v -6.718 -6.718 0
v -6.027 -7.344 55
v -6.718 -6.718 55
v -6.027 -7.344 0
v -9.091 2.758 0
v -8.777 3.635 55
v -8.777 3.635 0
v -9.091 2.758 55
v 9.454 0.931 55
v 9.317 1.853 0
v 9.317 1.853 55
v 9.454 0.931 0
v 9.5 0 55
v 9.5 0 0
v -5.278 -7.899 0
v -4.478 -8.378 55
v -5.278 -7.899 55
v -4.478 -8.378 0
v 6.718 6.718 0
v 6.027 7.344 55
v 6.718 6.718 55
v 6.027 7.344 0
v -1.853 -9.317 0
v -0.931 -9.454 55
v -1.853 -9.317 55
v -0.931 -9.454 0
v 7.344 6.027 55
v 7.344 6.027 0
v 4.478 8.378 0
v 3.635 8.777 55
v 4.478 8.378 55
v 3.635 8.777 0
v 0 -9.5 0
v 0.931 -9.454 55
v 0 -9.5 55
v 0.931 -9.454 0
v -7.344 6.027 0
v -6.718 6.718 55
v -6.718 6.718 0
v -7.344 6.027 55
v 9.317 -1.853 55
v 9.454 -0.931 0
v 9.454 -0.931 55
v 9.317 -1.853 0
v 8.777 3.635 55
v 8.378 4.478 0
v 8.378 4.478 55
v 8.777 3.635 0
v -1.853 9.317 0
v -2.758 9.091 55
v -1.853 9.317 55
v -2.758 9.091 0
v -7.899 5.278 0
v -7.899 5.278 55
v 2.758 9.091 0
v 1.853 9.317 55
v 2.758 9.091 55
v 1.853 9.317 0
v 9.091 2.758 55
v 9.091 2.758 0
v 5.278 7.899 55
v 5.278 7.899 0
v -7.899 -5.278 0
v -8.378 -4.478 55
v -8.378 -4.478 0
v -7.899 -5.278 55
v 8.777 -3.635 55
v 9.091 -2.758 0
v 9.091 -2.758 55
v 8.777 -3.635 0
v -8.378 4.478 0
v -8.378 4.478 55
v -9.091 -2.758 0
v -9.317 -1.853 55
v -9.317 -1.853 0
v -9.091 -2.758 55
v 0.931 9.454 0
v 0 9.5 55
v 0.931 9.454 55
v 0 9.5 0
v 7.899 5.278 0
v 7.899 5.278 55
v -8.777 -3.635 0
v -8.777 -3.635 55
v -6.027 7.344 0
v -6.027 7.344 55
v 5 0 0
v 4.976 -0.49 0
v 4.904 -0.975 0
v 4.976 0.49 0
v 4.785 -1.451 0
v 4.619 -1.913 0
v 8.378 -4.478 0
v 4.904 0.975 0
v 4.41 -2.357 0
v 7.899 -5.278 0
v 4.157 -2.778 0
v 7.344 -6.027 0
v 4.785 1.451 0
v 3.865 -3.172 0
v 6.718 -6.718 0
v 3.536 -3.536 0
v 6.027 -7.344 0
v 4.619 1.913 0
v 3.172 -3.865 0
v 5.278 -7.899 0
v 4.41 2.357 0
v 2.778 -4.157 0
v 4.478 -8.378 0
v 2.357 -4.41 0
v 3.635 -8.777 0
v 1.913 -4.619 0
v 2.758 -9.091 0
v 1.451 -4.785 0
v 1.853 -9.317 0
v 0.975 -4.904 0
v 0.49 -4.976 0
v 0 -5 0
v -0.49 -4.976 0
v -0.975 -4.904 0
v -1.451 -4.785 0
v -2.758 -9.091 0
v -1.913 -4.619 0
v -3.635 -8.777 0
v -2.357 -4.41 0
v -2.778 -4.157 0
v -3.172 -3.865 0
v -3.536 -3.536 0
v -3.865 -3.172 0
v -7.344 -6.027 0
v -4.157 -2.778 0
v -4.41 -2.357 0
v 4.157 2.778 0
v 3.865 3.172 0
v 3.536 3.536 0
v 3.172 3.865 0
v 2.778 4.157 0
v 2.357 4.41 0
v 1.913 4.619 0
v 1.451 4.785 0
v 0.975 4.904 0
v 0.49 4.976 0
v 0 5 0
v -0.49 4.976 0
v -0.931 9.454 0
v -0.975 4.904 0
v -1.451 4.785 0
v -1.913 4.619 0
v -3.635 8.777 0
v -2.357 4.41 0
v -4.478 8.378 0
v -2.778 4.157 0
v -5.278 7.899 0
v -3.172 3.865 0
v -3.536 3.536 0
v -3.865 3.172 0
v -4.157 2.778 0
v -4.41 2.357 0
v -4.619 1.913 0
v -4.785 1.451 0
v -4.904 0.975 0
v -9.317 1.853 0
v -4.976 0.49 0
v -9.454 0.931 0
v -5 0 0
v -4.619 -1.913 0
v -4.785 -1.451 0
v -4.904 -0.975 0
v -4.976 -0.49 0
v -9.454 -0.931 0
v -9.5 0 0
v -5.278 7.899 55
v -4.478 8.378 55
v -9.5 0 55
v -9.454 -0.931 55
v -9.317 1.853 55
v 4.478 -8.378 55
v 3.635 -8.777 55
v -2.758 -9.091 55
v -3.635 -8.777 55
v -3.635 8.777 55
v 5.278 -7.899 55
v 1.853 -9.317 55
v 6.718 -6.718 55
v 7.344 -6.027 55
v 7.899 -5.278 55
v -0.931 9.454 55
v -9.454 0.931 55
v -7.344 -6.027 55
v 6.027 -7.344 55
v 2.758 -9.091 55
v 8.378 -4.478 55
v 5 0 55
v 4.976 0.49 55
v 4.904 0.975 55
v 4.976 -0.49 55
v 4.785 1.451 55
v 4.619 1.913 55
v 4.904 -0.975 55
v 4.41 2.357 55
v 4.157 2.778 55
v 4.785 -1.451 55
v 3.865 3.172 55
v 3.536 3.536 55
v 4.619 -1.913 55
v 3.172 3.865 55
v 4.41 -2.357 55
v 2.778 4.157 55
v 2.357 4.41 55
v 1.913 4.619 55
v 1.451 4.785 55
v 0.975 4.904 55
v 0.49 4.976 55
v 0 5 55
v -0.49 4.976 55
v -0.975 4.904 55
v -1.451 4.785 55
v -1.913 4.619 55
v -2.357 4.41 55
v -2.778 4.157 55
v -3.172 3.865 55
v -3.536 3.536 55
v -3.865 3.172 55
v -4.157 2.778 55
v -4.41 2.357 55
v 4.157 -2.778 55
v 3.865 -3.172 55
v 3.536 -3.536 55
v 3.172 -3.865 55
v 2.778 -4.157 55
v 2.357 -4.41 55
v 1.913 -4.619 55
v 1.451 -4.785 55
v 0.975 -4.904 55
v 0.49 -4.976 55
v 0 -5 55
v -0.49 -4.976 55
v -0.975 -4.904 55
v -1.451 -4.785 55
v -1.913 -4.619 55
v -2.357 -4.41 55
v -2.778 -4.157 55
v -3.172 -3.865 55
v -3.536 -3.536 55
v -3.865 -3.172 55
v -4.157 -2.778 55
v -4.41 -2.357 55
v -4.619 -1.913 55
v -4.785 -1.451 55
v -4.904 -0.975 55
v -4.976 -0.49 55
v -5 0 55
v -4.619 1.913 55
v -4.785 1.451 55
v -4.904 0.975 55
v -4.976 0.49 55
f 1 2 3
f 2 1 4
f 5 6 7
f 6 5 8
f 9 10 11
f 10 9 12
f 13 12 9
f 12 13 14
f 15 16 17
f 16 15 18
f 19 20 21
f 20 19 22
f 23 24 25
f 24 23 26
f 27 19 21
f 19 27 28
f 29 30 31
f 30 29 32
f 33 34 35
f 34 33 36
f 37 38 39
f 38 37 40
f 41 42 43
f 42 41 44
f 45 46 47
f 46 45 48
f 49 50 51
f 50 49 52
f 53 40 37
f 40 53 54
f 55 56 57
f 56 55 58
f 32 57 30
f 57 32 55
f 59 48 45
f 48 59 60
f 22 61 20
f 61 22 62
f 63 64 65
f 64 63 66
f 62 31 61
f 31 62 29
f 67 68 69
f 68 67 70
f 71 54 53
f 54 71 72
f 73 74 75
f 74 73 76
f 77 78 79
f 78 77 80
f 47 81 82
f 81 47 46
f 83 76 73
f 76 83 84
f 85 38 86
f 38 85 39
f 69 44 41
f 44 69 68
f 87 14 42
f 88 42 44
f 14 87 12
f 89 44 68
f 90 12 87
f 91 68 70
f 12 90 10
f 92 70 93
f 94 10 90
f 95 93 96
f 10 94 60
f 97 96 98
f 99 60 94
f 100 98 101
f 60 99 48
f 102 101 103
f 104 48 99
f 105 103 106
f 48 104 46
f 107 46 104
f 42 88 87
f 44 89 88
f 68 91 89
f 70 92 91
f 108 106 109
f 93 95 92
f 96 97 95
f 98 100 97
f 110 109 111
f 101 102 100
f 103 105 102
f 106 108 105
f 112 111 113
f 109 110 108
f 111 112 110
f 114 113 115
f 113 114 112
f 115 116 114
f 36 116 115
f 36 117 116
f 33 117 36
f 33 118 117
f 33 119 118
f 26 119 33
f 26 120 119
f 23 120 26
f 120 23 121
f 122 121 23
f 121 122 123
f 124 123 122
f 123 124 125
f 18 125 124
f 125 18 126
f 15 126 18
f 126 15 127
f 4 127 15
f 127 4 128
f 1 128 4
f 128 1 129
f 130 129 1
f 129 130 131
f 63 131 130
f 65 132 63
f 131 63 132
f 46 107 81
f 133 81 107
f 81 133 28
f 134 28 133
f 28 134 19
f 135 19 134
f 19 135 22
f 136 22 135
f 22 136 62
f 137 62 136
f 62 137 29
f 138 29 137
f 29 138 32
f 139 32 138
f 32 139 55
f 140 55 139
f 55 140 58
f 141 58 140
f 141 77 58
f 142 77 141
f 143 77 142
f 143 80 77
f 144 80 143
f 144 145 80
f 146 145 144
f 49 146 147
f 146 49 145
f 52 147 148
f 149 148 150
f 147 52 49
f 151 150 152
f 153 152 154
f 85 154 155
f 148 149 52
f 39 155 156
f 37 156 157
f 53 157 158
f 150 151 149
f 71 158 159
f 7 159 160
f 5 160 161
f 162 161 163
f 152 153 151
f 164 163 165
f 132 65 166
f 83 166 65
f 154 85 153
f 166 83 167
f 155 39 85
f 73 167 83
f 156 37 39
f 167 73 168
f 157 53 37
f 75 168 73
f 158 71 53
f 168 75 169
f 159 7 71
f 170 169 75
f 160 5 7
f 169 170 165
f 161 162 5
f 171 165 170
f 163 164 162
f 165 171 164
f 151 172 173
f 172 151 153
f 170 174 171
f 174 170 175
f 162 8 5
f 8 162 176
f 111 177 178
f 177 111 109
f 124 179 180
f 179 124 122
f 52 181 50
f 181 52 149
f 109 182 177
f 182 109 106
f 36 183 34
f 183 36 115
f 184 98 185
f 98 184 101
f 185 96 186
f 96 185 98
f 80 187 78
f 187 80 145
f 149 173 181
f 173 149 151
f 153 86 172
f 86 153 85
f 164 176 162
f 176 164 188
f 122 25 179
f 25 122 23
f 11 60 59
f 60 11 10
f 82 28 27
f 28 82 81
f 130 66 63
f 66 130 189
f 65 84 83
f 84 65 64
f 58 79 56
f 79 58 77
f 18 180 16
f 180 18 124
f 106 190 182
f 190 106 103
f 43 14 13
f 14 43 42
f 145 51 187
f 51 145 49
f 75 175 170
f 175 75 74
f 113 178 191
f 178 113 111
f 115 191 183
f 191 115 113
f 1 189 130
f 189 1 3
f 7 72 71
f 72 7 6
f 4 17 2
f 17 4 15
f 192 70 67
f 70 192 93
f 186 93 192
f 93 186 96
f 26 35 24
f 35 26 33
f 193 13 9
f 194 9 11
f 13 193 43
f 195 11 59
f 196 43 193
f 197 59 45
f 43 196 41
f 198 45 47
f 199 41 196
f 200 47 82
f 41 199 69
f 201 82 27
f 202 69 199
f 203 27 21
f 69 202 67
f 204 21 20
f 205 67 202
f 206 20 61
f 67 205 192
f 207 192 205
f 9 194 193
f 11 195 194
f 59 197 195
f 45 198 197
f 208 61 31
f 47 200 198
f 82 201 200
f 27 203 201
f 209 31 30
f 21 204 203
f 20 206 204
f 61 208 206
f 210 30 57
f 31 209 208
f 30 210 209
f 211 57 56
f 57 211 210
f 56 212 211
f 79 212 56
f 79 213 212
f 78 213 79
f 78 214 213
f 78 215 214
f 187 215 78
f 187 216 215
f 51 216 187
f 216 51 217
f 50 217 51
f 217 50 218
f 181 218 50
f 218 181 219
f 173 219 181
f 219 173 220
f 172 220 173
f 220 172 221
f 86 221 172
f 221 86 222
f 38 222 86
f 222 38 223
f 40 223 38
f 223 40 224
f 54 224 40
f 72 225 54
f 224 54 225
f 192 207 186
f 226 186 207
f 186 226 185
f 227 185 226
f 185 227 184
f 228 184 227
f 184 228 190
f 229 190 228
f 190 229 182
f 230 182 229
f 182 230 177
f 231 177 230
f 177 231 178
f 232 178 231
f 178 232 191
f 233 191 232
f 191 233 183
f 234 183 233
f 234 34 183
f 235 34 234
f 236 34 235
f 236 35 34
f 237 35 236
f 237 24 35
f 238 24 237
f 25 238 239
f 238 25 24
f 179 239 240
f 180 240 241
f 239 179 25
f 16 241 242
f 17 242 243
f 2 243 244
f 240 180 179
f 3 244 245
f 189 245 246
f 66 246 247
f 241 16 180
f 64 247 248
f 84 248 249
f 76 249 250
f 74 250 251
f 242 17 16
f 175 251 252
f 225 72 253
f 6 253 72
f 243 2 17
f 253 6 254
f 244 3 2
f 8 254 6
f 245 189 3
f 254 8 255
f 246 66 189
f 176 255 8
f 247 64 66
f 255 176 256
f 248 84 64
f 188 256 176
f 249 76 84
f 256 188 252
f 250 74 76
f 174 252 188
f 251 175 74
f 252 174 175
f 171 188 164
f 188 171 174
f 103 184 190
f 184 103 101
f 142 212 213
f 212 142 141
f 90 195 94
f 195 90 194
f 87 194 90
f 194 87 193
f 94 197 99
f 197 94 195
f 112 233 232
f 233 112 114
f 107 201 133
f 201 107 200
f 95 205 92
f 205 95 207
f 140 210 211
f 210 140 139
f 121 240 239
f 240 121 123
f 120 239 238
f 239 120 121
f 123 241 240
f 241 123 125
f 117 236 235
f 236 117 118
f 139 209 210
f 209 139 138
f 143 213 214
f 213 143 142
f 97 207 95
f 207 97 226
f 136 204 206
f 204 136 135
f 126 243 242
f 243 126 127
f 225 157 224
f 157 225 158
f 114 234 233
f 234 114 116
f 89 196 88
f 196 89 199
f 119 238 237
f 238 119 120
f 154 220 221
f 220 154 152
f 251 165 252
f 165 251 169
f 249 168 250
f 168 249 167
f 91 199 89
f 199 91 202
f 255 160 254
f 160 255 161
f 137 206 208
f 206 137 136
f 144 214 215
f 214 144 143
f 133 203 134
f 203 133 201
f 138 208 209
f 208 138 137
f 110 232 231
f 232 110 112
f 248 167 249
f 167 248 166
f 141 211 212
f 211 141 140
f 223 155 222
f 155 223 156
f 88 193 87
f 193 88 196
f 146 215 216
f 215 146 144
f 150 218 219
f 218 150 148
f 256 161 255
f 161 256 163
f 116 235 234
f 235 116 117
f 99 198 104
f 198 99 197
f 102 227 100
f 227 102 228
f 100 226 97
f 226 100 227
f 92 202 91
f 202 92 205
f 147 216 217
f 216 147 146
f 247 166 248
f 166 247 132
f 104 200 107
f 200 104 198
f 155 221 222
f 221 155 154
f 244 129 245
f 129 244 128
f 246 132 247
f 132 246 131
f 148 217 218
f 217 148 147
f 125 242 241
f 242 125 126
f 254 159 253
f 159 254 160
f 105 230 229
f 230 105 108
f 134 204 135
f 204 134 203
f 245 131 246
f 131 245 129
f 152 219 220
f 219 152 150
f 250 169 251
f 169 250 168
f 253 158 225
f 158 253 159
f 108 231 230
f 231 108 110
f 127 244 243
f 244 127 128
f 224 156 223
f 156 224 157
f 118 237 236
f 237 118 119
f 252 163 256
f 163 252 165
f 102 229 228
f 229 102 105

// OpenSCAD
difference() {
    cylinder(h=55.0, d=19.0, $fn=64);
    translate([0, 0, -1])
        cylinder(h=57.0, d=10.0, $fn=64);
}
